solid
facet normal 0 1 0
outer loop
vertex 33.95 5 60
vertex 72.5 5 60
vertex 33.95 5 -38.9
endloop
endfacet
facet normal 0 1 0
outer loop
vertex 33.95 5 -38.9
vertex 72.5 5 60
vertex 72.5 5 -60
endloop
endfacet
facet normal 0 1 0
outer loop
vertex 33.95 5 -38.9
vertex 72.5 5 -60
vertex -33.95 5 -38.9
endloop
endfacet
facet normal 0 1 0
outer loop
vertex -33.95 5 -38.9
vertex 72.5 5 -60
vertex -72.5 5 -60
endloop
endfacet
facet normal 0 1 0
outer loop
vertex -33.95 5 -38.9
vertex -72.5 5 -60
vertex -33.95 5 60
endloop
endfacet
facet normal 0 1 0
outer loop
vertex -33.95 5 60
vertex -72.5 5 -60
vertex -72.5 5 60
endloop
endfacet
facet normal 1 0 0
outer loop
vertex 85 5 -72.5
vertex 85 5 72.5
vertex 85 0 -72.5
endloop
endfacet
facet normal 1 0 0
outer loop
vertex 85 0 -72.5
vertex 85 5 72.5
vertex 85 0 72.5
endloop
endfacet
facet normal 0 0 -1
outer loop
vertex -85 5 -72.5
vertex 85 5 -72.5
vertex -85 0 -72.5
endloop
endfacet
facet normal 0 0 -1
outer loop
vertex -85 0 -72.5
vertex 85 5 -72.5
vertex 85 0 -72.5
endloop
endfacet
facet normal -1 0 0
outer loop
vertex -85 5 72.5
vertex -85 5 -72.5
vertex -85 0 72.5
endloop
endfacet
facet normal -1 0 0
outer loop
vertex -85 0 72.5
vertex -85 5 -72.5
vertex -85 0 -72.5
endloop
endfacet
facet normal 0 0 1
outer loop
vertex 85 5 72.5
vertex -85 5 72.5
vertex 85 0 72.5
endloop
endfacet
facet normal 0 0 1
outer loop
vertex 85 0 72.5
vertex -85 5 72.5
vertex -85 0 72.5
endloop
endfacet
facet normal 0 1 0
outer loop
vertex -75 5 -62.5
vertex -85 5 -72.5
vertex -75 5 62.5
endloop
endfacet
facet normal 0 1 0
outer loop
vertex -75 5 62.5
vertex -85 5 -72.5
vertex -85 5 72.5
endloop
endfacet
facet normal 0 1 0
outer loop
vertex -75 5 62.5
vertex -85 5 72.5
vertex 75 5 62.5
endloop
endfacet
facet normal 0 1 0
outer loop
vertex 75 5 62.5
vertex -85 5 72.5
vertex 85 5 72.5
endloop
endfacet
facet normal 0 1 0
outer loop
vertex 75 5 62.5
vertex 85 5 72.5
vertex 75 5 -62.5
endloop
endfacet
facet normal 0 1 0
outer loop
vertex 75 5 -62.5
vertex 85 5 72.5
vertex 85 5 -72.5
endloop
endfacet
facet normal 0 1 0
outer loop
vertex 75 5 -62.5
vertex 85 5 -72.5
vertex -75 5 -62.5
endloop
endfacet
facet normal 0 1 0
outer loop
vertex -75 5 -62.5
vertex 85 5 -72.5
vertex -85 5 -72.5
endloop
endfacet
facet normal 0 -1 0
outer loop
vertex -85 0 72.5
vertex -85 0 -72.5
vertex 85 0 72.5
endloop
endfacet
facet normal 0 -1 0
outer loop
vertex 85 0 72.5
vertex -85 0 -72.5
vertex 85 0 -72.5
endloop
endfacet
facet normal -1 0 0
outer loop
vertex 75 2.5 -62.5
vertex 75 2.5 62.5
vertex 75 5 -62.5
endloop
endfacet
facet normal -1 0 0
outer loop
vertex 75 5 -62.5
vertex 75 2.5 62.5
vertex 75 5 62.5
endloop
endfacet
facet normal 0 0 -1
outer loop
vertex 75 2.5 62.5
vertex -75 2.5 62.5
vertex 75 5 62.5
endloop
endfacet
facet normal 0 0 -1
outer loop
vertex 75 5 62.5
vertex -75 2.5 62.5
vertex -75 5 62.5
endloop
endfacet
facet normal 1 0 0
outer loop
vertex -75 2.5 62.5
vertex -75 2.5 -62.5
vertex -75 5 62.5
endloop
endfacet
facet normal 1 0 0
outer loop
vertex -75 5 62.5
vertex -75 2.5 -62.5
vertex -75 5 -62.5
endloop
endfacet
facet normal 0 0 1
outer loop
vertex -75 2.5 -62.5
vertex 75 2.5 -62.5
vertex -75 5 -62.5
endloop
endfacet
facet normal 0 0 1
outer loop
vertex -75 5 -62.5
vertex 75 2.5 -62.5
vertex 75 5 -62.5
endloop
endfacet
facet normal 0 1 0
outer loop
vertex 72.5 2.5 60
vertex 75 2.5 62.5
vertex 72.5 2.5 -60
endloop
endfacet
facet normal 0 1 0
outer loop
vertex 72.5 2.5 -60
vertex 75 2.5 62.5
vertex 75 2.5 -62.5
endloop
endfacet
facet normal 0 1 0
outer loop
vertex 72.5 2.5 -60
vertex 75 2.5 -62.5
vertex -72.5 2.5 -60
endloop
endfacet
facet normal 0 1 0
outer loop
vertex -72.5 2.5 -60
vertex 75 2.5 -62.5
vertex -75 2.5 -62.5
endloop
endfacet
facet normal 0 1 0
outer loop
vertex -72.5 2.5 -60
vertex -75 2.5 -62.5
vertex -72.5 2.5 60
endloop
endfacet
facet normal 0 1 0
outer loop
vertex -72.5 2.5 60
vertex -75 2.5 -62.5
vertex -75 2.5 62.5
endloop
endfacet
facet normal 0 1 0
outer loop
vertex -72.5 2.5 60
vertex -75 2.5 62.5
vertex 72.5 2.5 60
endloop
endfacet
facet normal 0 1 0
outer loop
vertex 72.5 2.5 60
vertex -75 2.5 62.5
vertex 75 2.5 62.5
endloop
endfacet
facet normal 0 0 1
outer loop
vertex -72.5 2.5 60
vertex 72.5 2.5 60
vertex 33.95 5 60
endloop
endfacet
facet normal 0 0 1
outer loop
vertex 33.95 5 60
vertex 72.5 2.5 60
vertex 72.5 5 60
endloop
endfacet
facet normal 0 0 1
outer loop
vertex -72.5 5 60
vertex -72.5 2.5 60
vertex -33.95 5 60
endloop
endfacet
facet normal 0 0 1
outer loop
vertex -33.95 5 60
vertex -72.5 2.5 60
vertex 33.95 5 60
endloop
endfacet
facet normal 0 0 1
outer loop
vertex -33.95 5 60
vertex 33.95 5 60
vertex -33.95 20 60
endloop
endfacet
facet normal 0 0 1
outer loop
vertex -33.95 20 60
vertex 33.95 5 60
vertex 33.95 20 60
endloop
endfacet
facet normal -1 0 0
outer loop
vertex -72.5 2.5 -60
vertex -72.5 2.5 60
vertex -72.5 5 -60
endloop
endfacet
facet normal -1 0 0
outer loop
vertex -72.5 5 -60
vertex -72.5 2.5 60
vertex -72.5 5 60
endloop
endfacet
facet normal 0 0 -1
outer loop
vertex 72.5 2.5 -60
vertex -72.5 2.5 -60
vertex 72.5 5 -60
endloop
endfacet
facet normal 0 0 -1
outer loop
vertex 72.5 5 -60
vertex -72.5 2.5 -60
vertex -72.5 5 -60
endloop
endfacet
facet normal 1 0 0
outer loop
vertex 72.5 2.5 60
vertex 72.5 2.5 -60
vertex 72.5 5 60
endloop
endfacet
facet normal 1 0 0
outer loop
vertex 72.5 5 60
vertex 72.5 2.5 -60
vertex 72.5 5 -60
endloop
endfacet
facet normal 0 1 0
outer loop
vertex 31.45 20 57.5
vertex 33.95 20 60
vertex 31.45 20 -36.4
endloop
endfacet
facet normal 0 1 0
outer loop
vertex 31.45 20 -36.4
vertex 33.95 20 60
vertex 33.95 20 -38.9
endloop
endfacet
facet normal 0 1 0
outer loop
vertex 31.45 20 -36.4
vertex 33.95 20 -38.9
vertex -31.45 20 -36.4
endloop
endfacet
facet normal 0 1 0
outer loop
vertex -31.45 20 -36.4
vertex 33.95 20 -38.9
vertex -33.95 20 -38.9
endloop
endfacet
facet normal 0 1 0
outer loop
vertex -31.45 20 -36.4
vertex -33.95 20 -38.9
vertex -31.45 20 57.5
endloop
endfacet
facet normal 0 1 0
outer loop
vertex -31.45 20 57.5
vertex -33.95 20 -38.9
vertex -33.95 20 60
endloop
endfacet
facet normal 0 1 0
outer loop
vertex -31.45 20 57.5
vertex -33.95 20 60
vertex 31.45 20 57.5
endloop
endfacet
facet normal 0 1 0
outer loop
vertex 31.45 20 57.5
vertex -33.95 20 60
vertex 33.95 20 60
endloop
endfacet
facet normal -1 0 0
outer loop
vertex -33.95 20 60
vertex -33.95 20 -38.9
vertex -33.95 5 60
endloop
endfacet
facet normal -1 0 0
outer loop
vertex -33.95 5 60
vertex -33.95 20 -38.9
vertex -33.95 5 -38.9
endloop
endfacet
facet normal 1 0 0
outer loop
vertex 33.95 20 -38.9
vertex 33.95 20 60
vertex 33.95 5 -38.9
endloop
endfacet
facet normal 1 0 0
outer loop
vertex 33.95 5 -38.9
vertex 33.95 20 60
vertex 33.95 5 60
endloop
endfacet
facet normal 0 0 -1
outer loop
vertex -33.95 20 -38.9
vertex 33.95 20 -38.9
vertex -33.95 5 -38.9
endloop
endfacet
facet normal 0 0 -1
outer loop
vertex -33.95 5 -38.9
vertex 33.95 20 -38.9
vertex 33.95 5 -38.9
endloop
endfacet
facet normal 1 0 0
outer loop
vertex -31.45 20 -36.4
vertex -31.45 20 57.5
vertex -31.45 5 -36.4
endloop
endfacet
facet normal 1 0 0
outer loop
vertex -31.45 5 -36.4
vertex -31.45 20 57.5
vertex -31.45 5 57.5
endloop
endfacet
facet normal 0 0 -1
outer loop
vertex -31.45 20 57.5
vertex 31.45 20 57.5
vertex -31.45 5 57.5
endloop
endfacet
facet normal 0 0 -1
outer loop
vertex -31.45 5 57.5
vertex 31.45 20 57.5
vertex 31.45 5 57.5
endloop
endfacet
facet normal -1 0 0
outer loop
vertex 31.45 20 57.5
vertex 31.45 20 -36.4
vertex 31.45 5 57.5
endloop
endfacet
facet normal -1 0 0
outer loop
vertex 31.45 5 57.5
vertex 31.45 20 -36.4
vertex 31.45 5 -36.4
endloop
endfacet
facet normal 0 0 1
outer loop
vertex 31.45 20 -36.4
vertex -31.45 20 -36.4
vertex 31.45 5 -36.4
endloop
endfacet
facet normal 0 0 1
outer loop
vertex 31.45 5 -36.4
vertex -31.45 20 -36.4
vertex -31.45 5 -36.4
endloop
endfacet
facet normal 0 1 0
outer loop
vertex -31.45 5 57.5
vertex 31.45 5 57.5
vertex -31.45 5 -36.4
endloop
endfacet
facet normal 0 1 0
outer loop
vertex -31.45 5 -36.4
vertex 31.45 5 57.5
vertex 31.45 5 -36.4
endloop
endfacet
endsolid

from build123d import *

# Parameters (mm, degrees)
SKETCH1_W           = 170
SKETCH1_H           = 145
BOSS_EXTRUDE1_DEPTH = 5
SKETCH2_W           = 150
SKETCH2_H           = 125
SKETCH2_W_2         = 145
SKETCH2_H_2         = 120
CUT_EXTRUDE1_DEPTH  = 2.5
SKETCH4_W           = 67.9
SKETCH4_H           = 98.9
SKETCH4_W_2         = 62.9
SKETCH4_H_2         = 93.9
BOSS_EXTRUDE2_DEPTH = 15


with BuildPart() as part:
    # Sketch1 → Boss-Extrude1 (new body)
    with BuildSketch(Plane(origin=(0, 0, 0), x_dir=(1, 0, 0), z_dir=(0, 1, 0))):
        Rectangle(SKETCH1_W, SKETCH1_H)
    extrude(amount=BOSS_EXTRUDE1_DEPTH)

    # Sketch2 → Cut-Extrude1 (cut)
    with BuildSketch(Plane(origin=(0, 5, 0), x_dir=(1, 0, 0), z_dir=(0, 1, 0))):
        Rectangle(SKETCH2_W, SKETCH2_H)
        Rectangle(SKETCH2_W_2, SKETCH2_H_2, mode=Mode.SUBTRACT)
    extrude(amount=-CUT_EXTRUDE1_DEPTH, mode=Mode.SUBTRACT)

    # Sketch4 → Boss-Extrude2 (add)
    with BuildSketch(Plane(origin=(0, 5, 0), x_dir=(1, 0, 0), z_dir=(0, 1, 0))):
        with Locations((0, -10.55)):
            Rectangle(SKETCH4_W, SKETCH4_H)
        with Locations((0, -10.55)):
            Rectangle(SKETCH4_W_2, SKETCH4_H_2, mode=Mode.SUBTRACT)
    extrude(amount=BOSS_EXTRUDE2_DEPTH)


solid = part.part
